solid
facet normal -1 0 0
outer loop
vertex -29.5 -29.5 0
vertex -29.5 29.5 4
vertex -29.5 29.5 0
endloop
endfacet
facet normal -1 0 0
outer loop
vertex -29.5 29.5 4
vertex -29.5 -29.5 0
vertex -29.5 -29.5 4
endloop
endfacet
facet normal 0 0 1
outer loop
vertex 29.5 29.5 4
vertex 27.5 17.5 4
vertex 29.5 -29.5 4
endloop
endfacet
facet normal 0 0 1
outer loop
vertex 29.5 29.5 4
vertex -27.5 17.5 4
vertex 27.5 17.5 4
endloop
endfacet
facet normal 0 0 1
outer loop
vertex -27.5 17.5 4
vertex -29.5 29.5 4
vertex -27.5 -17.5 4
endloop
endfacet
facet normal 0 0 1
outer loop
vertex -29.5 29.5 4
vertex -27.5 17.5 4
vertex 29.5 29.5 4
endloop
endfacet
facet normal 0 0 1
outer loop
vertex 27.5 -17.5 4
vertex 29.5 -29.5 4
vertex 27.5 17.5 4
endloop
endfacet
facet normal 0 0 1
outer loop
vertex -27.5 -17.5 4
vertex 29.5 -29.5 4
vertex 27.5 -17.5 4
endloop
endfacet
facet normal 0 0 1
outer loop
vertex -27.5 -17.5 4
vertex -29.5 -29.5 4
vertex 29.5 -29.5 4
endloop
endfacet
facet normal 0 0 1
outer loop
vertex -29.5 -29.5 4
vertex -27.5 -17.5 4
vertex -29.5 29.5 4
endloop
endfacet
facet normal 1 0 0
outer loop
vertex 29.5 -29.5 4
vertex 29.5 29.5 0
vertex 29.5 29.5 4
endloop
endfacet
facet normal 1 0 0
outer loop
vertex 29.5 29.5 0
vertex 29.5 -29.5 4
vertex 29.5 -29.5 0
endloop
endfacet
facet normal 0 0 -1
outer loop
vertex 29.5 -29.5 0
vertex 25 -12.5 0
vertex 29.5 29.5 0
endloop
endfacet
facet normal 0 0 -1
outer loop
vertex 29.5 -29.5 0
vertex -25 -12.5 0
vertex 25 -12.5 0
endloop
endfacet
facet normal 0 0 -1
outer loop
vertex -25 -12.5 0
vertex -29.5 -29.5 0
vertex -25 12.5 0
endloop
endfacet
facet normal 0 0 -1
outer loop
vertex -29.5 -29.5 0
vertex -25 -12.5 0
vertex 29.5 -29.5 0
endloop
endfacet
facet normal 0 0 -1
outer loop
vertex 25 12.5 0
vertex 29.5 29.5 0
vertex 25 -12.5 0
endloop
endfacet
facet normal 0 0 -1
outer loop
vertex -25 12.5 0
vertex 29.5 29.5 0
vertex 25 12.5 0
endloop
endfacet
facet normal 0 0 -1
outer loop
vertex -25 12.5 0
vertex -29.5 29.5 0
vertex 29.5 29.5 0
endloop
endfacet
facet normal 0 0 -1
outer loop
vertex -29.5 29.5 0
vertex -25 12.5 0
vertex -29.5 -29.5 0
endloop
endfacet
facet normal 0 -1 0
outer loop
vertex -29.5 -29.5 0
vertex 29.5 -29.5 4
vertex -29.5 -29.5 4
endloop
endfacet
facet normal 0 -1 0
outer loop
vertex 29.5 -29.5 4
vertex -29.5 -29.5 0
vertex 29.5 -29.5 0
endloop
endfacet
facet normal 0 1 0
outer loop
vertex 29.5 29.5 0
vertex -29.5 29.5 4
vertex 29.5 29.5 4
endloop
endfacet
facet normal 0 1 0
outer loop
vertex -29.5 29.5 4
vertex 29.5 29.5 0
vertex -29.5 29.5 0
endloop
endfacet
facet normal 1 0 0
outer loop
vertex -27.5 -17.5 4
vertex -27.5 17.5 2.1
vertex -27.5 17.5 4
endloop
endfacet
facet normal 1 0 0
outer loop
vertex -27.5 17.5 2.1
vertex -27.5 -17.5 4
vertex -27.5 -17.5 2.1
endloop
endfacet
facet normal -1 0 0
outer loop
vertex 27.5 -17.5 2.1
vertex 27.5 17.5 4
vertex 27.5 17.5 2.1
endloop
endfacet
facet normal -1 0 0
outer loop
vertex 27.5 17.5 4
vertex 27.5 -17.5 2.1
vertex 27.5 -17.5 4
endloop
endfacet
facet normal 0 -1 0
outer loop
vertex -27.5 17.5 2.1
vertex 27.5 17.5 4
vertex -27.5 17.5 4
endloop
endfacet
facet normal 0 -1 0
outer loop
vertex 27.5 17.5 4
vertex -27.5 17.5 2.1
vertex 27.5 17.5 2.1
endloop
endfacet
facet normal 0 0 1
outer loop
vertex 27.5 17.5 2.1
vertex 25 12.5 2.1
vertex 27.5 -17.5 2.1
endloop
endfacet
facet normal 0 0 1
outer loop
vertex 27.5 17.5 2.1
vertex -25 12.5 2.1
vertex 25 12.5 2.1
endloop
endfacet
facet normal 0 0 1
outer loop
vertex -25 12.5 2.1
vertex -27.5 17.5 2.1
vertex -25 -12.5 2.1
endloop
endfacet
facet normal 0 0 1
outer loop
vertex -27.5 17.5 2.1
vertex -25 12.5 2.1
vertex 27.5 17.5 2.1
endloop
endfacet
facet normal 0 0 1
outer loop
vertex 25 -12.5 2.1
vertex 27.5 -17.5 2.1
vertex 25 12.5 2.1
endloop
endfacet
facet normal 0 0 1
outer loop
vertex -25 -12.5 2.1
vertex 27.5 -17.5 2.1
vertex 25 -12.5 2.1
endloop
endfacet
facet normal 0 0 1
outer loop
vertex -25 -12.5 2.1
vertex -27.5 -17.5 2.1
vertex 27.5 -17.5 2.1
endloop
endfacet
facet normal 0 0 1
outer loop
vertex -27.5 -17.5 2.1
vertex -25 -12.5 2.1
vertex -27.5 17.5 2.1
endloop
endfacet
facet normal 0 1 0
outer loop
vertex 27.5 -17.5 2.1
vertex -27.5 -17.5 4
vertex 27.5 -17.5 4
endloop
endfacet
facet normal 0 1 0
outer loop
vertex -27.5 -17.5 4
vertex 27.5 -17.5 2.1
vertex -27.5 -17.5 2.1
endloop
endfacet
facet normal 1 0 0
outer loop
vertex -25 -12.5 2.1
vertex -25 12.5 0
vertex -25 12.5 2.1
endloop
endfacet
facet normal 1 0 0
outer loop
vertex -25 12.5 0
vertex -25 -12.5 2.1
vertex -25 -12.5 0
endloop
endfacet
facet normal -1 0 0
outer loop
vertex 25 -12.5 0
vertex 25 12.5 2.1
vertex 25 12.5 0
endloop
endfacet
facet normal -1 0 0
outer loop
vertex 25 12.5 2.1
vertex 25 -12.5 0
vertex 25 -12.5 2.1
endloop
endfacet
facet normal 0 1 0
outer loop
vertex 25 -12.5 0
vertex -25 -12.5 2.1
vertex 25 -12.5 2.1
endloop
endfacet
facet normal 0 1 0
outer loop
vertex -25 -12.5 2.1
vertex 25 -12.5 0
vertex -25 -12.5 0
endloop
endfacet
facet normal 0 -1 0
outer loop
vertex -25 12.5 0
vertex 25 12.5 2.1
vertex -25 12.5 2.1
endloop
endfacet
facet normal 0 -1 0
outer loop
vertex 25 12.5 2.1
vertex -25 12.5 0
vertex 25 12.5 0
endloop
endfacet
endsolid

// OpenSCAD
// file: alsaCam.scad
//creaAlsaCamara(5);
alsaCamTorR = 1;

// creaAlsaCamara(10);

module creaAlsaCamara( intAlsaCamH )
{    
    difference(){

        translate([-13,-2.9,0])
        cube([26,17,intAlsaCamH]);

        //Tornillos camara
        translate([-10,12,-0.1])
        cylinder(r=alsaCamTorR,intAlsaCamH+0.4,$fn=20);
        translate([10,12,-0.1])
        cylinder(r=alsaCamTorR,intAlsaCamH+0.4,$fn=20);
        translate([-10,-1,-0.1])
        cylinder(r=alsaCamTorR,intAlsaCamH+0.4,$fn=20);
        translate([10,-1,-0.1])
        cylinder(r=alsaCamTorR,intAlsaCamH+0.4,$fn=20);

    }
}
// main file
include <alsaCam.scad>

genW = 59;
genD = 4;


diffW = 50;
diffH = 25;
diffD = 2;

    
difference()
{
    translate([-genW/2,-genW/2,0])
    cube([genW,genW,genD]);
    
    translate([-(diffW+5)/2,-(diffH+10)/2,genD-diffD+0.1])
    cube([diffW+5,diffH+10,diffD]);
    
    translate([-diffW/2,-diffH/2,-0.1])
    cube([diffW,diffH,diffD+1]);
    
}
